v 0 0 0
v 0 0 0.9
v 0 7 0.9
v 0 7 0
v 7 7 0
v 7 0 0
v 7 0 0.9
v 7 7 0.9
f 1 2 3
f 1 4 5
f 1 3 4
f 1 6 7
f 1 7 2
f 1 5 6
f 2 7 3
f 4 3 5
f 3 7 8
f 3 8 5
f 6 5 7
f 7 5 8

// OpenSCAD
/* Warning, this is a very basic generator with a lot of approximation 
input data : [VQFN, PTA, 7x7x0.9mm, 48, , B, C04-01270B]
generated by com.zoubworld.electronics.cad.model3d.Basic
Date : Sun Feb 15 10:50:49 CET 2026
*/

//body
color("black")
translate([0,0,0])
cube([7.0,7.0,0.9], center=false);
